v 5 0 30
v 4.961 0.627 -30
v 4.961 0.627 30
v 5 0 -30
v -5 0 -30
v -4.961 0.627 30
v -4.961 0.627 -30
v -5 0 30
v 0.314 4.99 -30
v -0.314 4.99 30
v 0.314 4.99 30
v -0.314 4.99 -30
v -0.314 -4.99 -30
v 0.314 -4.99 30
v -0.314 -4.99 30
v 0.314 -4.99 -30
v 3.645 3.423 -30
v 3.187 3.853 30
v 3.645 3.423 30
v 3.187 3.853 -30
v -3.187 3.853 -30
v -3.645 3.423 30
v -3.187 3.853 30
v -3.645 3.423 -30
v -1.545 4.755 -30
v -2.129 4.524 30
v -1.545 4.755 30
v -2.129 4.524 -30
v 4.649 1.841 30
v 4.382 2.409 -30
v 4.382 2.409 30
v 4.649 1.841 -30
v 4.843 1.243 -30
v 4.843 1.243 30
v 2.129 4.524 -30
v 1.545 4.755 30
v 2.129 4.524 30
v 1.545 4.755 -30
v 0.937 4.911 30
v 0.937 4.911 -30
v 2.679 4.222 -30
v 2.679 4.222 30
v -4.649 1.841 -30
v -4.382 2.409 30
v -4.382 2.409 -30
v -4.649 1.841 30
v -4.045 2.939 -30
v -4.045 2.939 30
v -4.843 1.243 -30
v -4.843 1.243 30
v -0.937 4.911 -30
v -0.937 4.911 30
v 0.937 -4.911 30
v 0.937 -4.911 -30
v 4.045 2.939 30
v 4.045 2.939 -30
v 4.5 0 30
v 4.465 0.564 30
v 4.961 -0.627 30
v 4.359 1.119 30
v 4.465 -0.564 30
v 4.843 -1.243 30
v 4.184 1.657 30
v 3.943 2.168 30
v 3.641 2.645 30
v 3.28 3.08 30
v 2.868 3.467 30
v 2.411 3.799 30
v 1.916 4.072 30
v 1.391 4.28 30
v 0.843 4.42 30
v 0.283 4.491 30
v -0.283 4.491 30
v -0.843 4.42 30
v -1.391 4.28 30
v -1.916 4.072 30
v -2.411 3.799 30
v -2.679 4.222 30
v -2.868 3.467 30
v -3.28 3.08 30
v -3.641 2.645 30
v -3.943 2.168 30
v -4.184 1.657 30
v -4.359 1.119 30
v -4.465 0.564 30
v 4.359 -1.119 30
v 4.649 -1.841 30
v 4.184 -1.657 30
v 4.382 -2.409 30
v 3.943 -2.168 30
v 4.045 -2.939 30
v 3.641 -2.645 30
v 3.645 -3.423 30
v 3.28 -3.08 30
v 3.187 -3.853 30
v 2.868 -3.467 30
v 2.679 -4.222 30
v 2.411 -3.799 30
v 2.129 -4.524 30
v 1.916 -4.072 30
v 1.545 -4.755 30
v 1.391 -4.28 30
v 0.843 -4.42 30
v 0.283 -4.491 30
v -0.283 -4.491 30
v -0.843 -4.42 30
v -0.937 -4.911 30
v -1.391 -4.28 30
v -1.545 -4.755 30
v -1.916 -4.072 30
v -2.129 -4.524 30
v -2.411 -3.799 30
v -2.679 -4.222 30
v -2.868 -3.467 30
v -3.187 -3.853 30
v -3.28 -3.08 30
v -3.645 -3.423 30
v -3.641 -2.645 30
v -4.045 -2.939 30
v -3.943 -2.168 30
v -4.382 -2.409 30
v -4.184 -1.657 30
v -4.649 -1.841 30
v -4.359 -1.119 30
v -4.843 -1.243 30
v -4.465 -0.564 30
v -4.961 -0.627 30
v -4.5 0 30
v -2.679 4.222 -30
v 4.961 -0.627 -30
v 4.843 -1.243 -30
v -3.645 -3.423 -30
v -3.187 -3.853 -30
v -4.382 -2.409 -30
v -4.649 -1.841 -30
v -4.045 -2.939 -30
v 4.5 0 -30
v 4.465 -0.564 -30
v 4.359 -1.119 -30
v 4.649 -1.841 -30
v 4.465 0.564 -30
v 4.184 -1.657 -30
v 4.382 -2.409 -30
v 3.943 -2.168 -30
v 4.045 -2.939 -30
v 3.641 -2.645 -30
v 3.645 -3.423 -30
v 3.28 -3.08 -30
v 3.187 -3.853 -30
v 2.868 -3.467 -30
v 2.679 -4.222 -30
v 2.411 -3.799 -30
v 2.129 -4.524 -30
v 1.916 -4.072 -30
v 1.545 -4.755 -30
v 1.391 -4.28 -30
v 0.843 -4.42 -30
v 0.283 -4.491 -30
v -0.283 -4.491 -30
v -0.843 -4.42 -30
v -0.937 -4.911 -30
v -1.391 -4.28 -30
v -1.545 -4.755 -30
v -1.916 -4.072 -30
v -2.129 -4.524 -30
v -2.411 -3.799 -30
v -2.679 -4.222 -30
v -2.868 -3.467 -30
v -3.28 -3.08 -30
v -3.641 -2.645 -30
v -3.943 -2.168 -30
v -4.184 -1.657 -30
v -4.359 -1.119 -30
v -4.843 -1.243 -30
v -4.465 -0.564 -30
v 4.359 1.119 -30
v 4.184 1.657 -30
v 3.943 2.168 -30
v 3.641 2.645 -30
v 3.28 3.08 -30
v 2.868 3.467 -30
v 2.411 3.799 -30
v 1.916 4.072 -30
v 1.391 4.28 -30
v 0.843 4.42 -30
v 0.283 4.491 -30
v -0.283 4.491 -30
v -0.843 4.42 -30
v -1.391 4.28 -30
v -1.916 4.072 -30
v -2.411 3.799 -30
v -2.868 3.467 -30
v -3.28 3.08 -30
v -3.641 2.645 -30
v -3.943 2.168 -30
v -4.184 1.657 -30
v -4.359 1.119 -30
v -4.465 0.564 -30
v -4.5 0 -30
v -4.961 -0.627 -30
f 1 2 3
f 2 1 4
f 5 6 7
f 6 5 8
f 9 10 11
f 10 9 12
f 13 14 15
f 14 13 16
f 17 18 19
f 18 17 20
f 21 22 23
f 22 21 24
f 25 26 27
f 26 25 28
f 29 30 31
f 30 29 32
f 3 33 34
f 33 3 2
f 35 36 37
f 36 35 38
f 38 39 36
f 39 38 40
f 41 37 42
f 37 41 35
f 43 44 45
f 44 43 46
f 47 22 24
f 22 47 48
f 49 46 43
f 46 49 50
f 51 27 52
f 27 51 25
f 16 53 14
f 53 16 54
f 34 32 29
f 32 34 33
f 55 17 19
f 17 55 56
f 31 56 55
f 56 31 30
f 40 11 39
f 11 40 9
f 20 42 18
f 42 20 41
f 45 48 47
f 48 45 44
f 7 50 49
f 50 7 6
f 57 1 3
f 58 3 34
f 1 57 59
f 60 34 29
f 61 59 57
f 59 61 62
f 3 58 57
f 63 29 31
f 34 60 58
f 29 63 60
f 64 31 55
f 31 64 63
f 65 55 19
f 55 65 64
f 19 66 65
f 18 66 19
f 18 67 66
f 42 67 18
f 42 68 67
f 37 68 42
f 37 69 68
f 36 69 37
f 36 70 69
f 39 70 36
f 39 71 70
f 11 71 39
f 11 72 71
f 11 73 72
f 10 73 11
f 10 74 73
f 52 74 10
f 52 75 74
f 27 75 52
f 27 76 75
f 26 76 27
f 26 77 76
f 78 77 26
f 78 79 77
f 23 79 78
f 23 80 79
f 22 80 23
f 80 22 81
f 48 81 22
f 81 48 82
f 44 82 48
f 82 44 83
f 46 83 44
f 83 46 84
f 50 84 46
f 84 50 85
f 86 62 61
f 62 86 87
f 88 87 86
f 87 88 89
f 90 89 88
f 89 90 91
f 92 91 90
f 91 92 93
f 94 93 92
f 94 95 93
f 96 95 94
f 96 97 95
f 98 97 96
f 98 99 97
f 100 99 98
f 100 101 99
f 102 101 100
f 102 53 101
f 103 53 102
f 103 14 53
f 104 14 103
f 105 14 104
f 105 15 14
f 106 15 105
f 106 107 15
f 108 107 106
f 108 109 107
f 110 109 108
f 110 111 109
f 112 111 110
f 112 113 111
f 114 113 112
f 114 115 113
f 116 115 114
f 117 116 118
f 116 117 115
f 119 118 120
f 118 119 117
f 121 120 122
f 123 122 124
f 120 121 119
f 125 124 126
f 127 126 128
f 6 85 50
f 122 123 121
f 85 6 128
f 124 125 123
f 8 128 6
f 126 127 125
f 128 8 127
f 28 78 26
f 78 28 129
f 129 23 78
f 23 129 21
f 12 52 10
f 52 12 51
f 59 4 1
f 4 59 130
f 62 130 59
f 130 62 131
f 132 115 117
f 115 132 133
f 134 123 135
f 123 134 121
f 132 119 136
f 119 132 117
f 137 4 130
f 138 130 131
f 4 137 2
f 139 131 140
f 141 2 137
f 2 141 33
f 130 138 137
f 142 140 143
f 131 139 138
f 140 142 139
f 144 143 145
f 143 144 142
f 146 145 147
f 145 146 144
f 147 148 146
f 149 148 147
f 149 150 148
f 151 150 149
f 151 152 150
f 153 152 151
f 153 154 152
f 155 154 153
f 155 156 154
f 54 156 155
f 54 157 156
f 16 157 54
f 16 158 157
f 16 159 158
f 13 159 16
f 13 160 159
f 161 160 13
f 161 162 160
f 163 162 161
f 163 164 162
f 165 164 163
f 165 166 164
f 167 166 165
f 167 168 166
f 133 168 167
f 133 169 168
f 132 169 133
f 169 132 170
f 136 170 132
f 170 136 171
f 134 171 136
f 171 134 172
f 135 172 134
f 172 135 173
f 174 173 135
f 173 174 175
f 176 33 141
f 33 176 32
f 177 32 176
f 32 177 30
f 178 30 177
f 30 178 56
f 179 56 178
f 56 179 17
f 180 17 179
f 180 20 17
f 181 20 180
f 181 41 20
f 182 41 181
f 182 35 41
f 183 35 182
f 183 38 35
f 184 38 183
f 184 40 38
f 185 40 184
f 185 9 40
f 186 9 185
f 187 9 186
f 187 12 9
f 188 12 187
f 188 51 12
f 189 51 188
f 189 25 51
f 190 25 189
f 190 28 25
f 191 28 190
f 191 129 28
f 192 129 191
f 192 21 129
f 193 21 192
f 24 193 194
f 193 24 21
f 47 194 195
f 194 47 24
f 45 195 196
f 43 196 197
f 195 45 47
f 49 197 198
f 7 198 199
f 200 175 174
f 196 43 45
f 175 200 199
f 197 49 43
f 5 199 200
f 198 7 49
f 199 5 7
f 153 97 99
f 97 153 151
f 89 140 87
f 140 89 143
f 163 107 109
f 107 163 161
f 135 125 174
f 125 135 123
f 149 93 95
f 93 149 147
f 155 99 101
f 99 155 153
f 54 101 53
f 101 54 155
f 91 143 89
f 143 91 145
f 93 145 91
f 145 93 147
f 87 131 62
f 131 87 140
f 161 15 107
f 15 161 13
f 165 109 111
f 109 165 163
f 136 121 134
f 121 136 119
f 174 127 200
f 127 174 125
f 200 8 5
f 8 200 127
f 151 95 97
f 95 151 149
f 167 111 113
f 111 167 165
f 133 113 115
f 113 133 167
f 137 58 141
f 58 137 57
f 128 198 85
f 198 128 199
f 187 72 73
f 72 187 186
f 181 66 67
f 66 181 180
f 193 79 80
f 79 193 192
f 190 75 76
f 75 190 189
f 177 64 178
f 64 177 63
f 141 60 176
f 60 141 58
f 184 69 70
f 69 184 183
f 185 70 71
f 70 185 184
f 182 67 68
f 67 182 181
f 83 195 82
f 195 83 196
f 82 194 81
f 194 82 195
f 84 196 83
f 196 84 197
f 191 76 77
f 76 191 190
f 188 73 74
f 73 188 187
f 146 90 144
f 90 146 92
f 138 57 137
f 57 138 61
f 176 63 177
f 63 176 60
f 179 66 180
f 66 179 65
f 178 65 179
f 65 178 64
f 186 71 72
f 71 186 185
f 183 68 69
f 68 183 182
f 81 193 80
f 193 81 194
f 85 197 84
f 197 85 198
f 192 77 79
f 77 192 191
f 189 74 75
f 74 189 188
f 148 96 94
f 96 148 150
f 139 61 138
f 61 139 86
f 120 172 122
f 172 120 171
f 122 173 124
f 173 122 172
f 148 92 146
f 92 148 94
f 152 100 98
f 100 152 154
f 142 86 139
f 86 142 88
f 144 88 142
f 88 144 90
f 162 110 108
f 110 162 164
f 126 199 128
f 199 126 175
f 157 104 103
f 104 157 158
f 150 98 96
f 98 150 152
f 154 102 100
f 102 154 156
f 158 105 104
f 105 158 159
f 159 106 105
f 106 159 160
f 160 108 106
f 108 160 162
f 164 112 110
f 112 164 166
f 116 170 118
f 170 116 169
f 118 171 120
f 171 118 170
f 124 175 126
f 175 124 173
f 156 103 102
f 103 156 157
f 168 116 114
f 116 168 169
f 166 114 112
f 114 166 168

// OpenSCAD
$fn = 50;


difference() {
	union() {
		translate(v = [0, 0, -30.0000000000]) {
			cylinder(h = 60, r = 5.0000000000);
		}
	}
	union() {
		translate(v = [0, 0, -100.0000000000]) {
			cylinder(h = 200, r = 4.5000000000);
		}
	}
}
